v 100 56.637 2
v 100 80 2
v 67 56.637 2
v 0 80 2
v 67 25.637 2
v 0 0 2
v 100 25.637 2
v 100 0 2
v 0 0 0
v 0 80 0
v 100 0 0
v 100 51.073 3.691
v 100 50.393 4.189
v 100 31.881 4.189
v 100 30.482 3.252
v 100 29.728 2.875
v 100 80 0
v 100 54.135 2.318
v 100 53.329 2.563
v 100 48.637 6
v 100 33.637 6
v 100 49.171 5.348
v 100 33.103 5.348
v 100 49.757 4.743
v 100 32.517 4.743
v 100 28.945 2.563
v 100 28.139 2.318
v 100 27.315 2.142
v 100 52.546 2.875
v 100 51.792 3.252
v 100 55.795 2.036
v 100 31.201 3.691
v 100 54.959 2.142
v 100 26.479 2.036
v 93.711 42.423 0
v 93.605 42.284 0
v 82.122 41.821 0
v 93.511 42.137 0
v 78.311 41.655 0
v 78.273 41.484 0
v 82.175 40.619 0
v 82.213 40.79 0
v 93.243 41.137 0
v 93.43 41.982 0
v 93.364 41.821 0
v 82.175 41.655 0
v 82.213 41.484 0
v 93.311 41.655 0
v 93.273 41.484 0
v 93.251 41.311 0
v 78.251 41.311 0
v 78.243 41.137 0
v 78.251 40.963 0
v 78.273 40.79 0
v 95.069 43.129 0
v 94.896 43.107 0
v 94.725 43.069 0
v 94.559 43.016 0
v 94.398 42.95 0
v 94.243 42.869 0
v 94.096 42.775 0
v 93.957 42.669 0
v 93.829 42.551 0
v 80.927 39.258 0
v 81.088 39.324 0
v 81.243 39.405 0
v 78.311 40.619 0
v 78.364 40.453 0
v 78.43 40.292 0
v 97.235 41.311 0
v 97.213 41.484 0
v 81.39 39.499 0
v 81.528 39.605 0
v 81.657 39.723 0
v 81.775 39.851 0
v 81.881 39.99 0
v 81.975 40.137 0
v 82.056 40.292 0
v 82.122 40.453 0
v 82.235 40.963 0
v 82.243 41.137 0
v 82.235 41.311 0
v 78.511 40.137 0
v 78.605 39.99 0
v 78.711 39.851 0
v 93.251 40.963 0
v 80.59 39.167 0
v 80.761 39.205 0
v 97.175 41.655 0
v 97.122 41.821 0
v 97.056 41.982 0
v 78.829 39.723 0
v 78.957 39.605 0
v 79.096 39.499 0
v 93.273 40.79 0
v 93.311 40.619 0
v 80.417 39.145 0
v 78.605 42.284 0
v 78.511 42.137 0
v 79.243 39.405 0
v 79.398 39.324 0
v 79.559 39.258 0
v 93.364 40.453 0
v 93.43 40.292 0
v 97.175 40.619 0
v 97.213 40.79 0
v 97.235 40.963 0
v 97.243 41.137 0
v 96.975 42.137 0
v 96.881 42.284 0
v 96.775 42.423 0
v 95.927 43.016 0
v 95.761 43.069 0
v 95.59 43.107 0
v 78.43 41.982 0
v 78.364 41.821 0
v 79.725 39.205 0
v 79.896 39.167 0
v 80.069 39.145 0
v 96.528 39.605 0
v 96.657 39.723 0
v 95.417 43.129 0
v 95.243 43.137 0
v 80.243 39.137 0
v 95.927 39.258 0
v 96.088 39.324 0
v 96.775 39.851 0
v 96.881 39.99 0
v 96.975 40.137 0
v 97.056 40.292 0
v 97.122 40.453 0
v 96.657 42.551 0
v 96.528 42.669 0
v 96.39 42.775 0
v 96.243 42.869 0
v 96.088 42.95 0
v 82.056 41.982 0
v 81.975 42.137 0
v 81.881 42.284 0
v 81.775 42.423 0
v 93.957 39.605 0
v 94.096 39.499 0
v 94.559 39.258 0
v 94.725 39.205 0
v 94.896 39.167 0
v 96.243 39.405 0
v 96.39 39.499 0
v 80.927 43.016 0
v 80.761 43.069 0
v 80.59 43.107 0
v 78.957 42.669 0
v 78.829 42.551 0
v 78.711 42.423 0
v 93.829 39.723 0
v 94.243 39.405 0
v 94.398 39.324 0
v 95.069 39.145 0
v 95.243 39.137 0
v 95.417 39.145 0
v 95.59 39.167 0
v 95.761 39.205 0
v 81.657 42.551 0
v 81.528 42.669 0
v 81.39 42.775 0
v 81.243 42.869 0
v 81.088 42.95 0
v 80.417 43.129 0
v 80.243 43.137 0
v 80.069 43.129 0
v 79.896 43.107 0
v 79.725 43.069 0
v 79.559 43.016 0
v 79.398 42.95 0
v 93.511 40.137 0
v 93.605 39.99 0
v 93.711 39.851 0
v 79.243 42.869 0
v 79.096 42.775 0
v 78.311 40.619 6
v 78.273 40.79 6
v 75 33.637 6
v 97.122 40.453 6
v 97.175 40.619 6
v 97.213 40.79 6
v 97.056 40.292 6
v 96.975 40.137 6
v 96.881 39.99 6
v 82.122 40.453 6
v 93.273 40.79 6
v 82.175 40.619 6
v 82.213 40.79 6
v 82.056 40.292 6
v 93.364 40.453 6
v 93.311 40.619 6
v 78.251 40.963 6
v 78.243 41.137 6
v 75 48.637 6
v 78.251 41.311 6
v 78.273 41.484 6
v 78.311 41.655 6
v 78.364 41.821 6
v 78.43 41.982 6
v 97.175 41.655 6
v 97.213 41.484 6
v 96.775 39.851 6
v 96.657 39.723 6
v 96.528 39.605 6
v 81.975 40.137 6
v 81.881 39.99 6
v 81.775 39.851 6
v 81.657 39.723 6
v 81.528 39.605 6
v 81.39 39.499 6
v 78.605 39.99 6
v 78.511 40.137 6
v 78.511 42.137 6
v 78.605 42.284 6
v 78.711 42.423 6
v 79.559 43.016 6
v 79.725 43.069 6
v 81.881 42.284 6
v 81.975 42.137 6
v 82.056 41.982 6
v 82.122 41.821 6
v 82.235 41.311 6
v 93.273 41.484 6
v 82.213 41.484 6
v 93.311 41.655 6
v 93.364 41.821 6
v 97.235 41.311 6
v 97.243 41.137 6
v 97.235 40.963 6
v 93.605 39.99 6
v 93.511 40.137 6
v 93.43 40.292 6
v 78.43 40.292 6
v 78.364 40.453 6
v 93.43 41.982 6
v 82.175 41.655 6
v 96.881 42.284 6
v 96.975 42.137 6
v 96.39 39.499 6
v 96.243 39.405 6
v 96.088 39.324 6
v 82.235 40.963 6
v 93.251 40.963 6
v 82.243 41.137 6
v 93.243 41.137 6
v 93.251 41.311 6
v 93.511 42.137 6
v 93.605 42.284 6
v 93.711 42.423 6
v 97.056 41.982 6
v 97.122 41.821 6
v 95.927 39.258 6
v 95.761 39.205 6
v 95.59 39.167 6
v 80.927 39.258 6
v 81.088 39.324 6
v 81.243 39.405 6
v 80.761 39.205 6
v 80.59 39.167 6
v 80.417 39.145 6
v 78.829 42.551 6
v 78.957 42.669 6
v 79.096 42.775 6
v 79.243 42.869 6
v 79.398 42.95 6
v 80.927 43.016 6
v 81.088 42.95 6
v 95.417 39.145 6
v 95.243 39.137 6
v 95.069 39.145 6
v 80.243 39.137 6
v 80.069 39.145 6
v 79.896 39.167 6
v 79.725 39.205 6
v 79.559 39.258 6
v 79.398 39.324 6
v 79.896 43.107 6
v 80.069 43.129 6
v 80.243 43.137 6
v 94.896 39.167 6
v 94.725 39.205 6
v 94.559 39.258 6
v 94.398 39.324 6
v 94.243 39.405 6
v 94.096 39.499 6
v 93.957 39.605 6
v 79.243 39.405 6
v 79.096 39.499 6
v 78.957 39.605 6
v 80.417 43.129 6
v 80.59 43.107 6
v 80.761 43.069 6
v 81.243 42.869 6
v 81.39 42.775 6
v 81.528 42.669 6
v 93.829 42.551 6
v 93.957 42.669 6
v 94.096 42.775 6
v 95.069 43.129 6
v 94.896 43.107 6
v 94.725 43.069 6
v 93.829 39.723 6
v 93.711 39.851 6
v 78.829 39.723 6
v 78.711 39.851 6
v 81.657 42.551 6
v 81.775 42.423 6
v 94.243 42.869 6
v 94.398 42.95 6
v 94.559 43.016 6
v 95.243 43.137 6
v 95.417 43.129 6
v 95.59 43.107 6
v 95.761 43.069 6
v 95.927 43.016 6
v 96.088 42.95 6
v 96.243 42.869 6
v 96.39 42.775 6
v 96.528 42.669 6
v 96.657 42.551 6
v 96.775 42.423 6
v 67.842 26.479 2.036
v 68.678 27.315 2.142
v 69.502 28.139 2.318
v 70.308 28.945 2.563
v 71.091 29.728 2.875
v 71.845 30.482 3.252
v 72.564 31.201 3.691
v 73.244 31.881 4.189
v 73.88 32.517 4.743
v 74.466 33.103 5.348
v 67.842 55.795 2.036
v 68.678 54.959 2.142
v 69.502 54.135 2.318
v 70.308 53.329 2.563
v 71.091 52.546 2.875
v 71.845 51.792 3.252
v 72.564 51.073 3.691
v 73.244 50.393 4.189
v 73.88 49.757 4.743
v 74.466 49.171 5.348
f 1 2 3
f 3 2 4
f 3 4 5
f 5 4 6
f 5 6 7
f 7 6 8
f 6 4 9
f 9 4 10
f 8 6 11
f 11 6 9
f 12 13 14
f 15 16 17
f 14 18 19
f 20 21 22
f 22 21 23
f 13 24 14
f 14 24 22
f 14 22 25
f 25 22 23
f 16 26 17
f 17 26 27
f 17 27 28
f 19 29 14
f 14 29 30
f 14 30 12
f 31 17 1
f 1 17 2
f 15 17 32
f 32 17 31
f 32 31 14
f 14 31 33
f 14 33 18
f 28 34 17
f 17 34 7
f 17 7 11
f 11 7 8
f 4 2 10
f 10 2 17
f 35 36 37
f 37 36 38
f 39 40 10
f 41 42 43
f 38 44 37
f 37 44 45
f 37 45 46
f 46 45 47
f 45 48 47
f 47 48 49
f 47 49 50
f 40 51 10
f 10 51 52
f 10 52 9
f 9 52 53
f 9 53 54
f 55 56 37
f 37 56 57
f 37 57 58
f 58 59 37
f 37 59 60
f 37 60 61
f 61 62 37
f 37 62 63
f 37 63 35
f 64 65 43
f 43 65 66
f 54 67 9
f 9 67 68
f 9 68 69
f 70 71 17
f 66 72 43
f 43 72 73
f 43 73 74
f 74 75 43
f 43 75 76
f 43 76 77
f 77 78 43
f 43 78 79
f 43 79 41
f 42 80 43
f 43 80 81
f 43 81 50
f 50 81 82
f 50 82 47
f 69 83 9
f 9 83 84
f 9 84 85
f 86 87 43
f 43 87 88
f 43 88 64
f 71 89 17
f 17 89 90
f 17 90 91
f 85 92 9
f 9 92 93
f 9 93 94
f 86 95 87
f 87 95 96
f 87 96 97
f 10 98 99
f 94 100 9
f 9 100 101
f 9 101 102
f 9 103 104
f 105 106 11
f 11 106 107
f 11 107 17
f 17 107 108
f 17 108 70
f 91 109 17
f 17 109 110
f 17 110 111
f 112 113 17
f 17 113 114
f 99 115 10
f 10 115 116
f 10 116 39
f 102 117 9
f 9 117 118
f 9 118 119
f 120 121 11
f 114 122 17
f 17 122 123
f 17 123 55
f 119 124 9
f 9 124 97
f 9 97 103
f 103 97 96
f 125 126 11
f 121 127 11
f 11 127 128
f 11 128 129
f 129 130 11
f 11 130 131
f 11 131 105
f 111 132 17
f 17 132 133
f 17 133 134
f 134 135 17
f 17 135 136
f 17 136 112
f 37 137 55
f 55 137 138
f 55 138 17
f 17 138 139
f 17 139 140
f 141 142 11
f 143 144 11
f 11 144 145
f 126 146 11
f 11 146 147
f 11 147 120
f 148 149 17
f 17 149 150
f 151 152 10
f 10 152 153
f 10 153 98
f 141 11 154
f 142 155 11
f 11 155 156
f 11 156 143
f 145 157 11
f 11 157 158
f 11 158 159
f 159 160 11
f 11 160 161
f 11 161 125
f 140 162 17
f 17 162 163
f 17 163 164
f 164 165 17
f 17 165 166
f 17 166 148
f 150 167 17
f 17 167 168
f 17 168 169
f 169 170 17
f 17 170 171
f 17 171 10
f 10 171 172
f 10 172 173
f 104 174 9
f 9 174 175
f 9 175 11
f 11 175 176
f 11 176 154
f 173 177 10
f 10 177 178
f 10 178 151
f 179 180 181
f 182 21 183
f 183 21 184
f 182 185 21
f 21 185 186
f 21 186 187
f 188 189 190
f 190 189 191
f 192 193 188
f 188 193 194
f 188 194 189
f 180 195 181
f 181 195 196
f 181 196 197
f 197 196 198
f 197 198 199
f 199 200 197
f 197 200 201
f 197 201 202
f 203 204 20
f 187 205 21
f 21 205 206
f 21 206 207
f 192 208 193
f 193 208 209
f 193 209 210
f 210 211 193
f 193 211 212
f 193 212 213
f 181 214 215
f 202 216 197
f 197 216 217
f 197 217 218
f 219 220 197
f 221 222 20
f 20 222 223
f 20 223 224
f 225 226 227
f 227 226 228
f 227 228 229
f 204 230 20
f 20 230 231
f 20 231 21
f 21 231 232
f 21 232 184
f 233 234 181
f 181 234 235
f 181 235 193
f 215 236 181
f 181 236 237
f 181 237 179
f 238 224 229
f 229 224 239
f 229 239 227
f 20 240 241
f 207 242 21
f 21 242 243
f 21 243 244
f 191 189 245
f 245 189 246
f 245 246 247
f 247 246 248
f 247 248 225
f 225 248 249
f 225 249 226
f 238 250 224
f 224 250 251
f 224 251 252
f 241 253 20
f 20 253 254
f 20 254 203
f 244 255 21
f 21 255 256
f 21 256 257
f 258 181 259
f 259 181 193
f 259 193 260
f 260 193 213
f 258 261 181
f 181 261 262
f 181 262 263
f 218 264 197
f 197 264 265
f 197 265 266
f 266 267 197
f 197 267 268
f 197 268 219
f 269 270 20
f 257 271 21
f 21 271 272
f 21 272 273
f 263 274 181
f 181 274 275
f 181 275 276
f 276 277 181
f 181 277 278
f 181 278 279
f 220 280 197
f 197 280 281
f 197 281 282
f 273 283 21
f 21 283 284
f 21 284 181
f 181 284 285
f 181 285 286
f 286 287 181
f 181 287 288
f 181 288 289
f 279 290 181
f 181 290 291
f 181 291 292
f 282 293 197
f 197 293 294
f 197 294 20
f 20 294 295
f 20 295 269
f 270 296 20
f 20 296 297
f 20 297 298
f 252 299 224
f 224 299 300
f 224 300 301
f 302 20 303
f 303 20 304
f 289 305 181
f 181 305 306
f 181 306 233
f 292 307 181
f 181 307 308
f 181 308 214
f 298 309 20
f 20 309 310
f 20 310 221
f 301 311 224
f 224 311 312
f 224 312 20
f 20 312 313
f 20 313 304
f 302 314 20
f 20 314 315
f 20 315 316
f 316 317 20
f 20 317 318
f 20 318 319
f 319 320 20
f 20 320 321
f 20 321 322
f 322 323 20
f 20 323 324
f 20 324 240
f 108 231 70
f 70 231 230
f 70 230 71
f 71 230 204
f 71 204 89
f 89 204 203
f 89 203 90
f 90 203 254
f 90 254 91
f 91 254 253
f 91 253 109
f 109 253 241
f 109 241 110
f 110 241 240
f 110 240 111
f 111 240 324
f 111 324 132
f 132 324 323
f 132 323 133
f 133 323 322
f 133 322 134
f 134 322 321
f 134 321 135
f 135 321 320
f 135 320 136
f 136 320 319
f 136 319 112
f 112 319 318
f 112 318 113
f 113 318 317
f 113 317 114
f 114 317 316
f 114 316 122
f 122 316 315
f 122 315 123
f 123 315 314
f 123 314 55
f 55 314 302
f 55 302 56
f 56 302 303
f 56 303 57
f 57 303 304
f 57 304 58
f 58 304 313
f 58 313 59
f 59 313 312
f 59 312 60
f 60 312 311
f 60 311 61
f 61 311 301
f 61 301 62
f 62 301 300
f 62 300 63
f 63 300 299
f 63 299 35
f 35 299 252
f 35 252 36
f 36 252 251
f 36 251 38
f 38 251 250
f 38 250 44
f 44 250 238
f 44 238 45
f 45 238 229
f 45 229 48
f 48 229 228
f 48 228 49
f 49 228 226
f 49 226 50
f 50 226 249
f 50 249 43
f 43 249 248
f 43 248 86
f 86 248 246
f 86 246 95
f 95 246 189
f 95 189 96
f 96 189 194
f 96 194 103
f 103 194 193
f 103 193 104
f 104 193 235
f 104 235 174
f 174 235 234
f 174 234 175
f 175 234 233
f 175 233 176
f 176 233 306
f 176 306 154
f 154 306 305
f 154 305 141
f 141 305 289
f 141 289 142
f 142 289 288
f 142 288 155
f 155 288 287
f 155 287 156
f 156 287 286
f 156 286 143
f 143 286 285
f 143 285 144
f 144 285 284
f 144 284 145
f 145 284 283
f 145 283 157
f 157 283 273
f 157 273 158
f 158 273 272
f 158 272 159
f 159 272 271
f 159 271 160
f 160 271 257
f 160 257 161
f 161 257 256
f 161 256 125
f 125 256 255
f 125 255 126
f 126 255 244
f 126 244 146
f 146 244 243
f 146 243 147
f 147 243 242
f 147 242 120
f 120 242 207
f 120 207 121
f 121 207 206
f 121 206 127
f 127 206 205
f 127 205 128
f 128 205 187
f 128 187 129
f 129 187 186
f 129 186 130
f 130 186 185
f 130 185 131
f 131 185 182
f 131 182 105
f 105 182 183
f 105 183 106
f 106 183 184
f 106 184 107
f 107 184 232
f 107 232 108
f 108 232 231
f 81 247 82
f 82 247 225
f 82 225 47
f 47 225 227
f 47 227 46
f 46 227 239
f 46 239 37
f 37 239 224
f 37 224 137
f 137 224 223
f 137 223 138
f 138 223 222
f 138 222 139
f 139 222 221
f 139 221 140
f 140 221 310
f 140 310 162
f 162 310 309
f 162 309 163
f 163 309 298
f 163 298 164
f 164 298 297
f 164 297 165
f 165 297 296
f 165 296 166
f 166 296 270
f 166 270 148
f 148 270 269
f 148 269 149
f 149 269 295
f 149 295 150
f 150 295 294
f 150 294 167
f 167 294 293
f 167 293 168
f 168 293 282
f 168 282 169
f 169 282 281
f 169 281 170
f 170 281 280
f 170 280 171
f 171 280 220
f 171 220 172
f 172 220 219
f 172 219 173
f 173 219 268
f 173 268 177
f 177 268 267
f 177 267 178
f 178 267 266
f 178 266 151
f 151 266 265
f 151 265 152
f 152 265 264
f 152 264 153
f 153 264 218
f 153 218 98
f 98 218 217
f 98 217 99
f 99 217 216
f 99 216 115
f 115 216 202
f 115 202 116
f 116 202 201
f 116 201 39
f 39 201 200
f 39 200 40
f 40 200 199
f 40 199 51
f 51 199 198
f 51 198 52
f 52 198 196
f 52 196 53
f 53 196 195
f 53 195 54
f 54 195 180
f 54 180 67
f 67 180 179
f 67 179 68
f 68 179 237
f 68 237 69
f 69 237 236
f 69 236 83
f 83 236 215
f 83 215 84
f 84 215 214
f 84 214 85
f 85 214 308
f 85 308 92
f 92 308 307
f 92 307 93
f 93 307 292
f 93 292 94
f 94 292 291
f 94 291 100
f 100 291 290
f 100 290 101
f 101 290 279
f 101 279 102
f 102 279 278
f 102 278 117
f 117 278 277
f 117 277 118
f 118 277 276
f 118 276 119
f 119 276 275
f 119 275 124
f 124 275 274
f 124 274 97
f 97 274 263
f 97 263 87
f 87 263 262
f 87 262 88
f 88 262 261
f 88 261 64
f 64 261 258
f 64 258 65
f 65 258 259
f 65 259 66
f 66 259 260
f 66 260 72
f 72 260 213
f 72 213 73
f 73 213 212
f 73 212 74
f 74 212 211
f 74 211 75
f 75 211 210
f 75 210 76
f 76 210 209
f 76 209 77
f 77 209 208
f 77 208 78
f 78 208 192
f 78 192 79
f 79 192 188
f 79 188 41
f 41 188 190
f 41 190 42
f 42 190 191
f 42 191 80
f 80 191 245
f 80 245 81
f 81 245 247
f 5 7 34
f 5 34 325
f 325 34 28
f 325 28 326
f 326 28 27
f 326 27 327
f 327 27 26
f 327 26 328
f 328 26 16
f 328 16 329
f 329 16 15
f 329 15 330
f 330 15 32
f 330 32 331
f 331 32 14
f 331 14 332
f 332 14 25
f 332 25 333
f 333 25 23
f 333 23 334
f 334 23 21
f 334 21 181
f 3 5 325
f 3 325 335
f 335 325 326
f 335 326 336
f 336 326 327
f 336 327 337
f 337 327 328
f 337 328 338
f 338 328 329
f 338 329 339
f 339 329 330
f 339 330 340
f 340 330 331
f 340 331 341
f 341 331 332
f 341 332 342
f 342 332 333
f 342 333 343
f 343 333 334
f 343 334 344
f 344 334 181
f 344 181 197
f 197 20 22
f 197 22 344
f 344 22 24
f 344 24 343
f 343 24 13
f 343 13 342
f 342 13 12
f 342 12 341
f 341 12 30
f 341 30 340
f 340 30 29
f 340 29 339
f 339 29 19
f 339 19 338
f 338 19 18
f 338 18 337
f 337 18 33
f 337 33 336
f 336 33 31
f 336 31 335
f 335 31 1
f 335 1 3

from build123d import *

# Parameters (mm, degrees)
SKETCH1_W           = 100
SKETCH1_H           = 80
BOSS_EXTRUDE1_DEPTH = 2
SKETCH2_W           = 25
SKETCH2_H           = 15
BOSS_EXTRUDE2_DEPTH = 4
SKETCH3_R           = 2
CUT_EXTRUDE1_DEPTH  = 129.202964084
FILLET1_R           = 10


with BuildPart() as part:
    # Sketch1 → Boss-Extrude1 (new body)
    with BuildSketch(Plane.XY):
        with Locations((50, 40)):
            Rectangle(SKETCH1_W, SKETCH1_H)
    extrude(amount=BOSS_EXTRUDE1_DEPTH)

    # Sketch2 → Boss-Extrude2 (add)
    with BuildSketch(Plane.XY.offset(2)):
        with Locations((87.5, 41.137045181)):
            Rectangle(SKETCH2_W, SKETCH2_H)
    extrude(amount=BOSS_EXTRUDE2_DEPTH)

    # Sketch3 → Cut-Extrude1 (cut, through all)
    with BuildSketch(Plane.XY.offset(6)):
        with Locations((80.242914422, 41.137045181)):
            Circle(SKETCH3_R)
        with Locations((95.242914422, 41.137045181)):
            Circle(SKETCH3_R)
    extrude(amount=-CUT_EXTRUDE1_DEPTH, mode=Mode.SUBTRACT)

    # Fillet1
    # the kernel refuses this fillet: 10 mm, written as the material it adds along each edge
    with BuildSketch(Plane(origin=(75, 48.637045181, 2), x_dir=(0, 1, 0), z_dir=(1, 0, 0)), Plane(origin=(100, 33.637045181, 2), x_dir=(0, -1, 0), z_dir=(-1, 0, 0))) as fillet1_piece_1:
        with BuildLine():
            CenterArc((8, 10), FILLET1_R, 216.869897646, 53.130102354)
            Line((0, 4), (-0.16, 3.88))
            ThreePointArc((-0.16, 3.88), (-0.2, 2), (-0.2, 0))
            Line((-0.2, 0), (0, -0.2))
            Line((0, -0.2), (8, -0.2))
            Line((8, -0.2), (8, 0))
        make_face()
    extrude(amount=25)
    with BuildSketch(Plane(origin=(75, 33.637045181, 2), x_dir=(-1, 0, 0), z_dir=(0, 1, 0))) as fillet1_piece_2:
        with BuildLine():
            CenterArc((8, 10), FILLET1_R, 216.869897646, 53.130102354)
            Line((0, 4), (-0.16, 3.88))
            ThreePointArc((-0.16, 3.88), (-0.2, 2), (-0.2, 0))
            Line((-0.2, 0), (0, -0.2))
            Line((0, -0.2), (8, -0.2))
            Line((8, -0.2), (8, 0))
        make_face()
    extrude(amount=15)
    with BuildSketch(Plane(origin=(55, 48.637045181, 2), x_dir=(0, 1, 0), z_dir=(1, 0, 0))) as fillet1_piece_3a_section:
        with BuildLine():
            CenterArc((8, 10), FILLET1_R, 216.869897646, 53.130102354)
            Line((0, 4), (-0.16, 3.88))
            ThreePointArc((-0.16, 3.88), (-0.2, 2), (-0.2, 0))
            Line((-0.2, 0), (0, -0.2))
            Line((0, -0.2), (8, -0.2))
            Line((8, -0.2), (8, 0))
        make_face()
    fillet1_piece_3a = extrude(amount=45, mode=Mode.PRIVATE)
    fillet1_piece_3a = split(fillet1_piece_3a, bisect_by=Plane(origin=(75, 50.695879295, 3.023885124), z_dir=(-1, 0, 0)), keep=Keep.TOP, mode=Mode.PRIVATE)
    with BuildSketch(Plane(origin=(75, 33.637045181, 2), x_dir=(-1, 0, 0), z_dir=(0, 1, 0))) as fillet1_piece_3b_section:
        with BuildLine():
            CenterArc((8, 10), FILLET1_R, 216.869897646, 53.130102354)
            Line((0, 4), (-0.16, 3.88))
            ThreePointArc((-0.16, 3.88), (-0.2, 2), (-0.2, 0))
            Line((-0.2, 0), (0, -0.2))
            Line((0, -0.2), (8, -0.2))
            Line((8, -0.2), (8, 0))
        make_face()
    fillet1_piece_3b = extrude(amount=35, mode=Mode.PRIVATE)
    fillet1_piece_3b = split(fillet1_piece_3b, bisect_by=Plane(origin=(72.941165886, 48.637045181, 3.023885124), z_dir=(0, 1, 0)), keep=Keep.TOP, mode=Mode.PRIVATE)
    fillet1_piece_3 = fillet1_piece_3a & fillet1_piece_3b
    add(fillet1_piece_3)
    with BuildSketch(Plane(origin=(75, 13.637045181, 2), x_dir=(-1, 0, 0), z_dir=(0, 1, 0))) as fillet1_piece_4a_section:
        with BuildLine():
            CenterArc((8, 10), FILLET1_R, 216.869897646, 53.130102354)
            Line((0, 4), (-0.16, 3.88))
            ThreePointArc((-0.16, 3.88), (-0.2, 2), (-0.2, 0))
            Line((-0.2, 0), (0, -0.2))
            Line((0, -0.2), (8, -0.2))
            Line((8, -0.2), (8, 0))
        make_face()
    fillet1_piece_4a = extrude(amount=35, mode=Mode.PRIVATE)
    fillet1_piece_4a = split(fillet1_piece_4a, bisect_by=Plane(origin=(72.941165886, 33.637045181, 3.023885124), z_dir=(0, -1, 0)), keep=Keep.TOP, mode=Mode.PRIVATE)
    with BuildSketch(Plane(origin=(100, 33.637045181, 2), x_dir=(0, -1, 0), z_dir=(-1, 0, 0))) as fillet1_piece_4b_section:
        with BuildLine():
            CenterArc((8, 10), FILLET1_R, 216.869897646, 53.130102354)
            Line((0, 4), (-0.16, 3.88))
            ThreePointArc((-0.16, 3.88), (-0.2, 2), (-0.2, 0))
            Line((-0.2, 0), (0, -0.2))
            Line((0, -0.2), (8, -0.2))
            Line((8, -0.2), (8, 0))
        make_face()
    fillet1_piece_4b = extrude(amount=45, mode=Mode.PRIVATE)
    fillet1_piece_4b = split(fillet1_piece_4b, bisect_by=Plane(origin=(75, 31.578211067, 3.023885124), z_dir=(-1, 0, 0)), keep=Keep.TOP, mode=Mode.PRIVATE)
    fillet1_piece_4 = fillet1_piece_4a & fillet1_piece_4b
    add(fillet1_piece_4)


solid = part.part
